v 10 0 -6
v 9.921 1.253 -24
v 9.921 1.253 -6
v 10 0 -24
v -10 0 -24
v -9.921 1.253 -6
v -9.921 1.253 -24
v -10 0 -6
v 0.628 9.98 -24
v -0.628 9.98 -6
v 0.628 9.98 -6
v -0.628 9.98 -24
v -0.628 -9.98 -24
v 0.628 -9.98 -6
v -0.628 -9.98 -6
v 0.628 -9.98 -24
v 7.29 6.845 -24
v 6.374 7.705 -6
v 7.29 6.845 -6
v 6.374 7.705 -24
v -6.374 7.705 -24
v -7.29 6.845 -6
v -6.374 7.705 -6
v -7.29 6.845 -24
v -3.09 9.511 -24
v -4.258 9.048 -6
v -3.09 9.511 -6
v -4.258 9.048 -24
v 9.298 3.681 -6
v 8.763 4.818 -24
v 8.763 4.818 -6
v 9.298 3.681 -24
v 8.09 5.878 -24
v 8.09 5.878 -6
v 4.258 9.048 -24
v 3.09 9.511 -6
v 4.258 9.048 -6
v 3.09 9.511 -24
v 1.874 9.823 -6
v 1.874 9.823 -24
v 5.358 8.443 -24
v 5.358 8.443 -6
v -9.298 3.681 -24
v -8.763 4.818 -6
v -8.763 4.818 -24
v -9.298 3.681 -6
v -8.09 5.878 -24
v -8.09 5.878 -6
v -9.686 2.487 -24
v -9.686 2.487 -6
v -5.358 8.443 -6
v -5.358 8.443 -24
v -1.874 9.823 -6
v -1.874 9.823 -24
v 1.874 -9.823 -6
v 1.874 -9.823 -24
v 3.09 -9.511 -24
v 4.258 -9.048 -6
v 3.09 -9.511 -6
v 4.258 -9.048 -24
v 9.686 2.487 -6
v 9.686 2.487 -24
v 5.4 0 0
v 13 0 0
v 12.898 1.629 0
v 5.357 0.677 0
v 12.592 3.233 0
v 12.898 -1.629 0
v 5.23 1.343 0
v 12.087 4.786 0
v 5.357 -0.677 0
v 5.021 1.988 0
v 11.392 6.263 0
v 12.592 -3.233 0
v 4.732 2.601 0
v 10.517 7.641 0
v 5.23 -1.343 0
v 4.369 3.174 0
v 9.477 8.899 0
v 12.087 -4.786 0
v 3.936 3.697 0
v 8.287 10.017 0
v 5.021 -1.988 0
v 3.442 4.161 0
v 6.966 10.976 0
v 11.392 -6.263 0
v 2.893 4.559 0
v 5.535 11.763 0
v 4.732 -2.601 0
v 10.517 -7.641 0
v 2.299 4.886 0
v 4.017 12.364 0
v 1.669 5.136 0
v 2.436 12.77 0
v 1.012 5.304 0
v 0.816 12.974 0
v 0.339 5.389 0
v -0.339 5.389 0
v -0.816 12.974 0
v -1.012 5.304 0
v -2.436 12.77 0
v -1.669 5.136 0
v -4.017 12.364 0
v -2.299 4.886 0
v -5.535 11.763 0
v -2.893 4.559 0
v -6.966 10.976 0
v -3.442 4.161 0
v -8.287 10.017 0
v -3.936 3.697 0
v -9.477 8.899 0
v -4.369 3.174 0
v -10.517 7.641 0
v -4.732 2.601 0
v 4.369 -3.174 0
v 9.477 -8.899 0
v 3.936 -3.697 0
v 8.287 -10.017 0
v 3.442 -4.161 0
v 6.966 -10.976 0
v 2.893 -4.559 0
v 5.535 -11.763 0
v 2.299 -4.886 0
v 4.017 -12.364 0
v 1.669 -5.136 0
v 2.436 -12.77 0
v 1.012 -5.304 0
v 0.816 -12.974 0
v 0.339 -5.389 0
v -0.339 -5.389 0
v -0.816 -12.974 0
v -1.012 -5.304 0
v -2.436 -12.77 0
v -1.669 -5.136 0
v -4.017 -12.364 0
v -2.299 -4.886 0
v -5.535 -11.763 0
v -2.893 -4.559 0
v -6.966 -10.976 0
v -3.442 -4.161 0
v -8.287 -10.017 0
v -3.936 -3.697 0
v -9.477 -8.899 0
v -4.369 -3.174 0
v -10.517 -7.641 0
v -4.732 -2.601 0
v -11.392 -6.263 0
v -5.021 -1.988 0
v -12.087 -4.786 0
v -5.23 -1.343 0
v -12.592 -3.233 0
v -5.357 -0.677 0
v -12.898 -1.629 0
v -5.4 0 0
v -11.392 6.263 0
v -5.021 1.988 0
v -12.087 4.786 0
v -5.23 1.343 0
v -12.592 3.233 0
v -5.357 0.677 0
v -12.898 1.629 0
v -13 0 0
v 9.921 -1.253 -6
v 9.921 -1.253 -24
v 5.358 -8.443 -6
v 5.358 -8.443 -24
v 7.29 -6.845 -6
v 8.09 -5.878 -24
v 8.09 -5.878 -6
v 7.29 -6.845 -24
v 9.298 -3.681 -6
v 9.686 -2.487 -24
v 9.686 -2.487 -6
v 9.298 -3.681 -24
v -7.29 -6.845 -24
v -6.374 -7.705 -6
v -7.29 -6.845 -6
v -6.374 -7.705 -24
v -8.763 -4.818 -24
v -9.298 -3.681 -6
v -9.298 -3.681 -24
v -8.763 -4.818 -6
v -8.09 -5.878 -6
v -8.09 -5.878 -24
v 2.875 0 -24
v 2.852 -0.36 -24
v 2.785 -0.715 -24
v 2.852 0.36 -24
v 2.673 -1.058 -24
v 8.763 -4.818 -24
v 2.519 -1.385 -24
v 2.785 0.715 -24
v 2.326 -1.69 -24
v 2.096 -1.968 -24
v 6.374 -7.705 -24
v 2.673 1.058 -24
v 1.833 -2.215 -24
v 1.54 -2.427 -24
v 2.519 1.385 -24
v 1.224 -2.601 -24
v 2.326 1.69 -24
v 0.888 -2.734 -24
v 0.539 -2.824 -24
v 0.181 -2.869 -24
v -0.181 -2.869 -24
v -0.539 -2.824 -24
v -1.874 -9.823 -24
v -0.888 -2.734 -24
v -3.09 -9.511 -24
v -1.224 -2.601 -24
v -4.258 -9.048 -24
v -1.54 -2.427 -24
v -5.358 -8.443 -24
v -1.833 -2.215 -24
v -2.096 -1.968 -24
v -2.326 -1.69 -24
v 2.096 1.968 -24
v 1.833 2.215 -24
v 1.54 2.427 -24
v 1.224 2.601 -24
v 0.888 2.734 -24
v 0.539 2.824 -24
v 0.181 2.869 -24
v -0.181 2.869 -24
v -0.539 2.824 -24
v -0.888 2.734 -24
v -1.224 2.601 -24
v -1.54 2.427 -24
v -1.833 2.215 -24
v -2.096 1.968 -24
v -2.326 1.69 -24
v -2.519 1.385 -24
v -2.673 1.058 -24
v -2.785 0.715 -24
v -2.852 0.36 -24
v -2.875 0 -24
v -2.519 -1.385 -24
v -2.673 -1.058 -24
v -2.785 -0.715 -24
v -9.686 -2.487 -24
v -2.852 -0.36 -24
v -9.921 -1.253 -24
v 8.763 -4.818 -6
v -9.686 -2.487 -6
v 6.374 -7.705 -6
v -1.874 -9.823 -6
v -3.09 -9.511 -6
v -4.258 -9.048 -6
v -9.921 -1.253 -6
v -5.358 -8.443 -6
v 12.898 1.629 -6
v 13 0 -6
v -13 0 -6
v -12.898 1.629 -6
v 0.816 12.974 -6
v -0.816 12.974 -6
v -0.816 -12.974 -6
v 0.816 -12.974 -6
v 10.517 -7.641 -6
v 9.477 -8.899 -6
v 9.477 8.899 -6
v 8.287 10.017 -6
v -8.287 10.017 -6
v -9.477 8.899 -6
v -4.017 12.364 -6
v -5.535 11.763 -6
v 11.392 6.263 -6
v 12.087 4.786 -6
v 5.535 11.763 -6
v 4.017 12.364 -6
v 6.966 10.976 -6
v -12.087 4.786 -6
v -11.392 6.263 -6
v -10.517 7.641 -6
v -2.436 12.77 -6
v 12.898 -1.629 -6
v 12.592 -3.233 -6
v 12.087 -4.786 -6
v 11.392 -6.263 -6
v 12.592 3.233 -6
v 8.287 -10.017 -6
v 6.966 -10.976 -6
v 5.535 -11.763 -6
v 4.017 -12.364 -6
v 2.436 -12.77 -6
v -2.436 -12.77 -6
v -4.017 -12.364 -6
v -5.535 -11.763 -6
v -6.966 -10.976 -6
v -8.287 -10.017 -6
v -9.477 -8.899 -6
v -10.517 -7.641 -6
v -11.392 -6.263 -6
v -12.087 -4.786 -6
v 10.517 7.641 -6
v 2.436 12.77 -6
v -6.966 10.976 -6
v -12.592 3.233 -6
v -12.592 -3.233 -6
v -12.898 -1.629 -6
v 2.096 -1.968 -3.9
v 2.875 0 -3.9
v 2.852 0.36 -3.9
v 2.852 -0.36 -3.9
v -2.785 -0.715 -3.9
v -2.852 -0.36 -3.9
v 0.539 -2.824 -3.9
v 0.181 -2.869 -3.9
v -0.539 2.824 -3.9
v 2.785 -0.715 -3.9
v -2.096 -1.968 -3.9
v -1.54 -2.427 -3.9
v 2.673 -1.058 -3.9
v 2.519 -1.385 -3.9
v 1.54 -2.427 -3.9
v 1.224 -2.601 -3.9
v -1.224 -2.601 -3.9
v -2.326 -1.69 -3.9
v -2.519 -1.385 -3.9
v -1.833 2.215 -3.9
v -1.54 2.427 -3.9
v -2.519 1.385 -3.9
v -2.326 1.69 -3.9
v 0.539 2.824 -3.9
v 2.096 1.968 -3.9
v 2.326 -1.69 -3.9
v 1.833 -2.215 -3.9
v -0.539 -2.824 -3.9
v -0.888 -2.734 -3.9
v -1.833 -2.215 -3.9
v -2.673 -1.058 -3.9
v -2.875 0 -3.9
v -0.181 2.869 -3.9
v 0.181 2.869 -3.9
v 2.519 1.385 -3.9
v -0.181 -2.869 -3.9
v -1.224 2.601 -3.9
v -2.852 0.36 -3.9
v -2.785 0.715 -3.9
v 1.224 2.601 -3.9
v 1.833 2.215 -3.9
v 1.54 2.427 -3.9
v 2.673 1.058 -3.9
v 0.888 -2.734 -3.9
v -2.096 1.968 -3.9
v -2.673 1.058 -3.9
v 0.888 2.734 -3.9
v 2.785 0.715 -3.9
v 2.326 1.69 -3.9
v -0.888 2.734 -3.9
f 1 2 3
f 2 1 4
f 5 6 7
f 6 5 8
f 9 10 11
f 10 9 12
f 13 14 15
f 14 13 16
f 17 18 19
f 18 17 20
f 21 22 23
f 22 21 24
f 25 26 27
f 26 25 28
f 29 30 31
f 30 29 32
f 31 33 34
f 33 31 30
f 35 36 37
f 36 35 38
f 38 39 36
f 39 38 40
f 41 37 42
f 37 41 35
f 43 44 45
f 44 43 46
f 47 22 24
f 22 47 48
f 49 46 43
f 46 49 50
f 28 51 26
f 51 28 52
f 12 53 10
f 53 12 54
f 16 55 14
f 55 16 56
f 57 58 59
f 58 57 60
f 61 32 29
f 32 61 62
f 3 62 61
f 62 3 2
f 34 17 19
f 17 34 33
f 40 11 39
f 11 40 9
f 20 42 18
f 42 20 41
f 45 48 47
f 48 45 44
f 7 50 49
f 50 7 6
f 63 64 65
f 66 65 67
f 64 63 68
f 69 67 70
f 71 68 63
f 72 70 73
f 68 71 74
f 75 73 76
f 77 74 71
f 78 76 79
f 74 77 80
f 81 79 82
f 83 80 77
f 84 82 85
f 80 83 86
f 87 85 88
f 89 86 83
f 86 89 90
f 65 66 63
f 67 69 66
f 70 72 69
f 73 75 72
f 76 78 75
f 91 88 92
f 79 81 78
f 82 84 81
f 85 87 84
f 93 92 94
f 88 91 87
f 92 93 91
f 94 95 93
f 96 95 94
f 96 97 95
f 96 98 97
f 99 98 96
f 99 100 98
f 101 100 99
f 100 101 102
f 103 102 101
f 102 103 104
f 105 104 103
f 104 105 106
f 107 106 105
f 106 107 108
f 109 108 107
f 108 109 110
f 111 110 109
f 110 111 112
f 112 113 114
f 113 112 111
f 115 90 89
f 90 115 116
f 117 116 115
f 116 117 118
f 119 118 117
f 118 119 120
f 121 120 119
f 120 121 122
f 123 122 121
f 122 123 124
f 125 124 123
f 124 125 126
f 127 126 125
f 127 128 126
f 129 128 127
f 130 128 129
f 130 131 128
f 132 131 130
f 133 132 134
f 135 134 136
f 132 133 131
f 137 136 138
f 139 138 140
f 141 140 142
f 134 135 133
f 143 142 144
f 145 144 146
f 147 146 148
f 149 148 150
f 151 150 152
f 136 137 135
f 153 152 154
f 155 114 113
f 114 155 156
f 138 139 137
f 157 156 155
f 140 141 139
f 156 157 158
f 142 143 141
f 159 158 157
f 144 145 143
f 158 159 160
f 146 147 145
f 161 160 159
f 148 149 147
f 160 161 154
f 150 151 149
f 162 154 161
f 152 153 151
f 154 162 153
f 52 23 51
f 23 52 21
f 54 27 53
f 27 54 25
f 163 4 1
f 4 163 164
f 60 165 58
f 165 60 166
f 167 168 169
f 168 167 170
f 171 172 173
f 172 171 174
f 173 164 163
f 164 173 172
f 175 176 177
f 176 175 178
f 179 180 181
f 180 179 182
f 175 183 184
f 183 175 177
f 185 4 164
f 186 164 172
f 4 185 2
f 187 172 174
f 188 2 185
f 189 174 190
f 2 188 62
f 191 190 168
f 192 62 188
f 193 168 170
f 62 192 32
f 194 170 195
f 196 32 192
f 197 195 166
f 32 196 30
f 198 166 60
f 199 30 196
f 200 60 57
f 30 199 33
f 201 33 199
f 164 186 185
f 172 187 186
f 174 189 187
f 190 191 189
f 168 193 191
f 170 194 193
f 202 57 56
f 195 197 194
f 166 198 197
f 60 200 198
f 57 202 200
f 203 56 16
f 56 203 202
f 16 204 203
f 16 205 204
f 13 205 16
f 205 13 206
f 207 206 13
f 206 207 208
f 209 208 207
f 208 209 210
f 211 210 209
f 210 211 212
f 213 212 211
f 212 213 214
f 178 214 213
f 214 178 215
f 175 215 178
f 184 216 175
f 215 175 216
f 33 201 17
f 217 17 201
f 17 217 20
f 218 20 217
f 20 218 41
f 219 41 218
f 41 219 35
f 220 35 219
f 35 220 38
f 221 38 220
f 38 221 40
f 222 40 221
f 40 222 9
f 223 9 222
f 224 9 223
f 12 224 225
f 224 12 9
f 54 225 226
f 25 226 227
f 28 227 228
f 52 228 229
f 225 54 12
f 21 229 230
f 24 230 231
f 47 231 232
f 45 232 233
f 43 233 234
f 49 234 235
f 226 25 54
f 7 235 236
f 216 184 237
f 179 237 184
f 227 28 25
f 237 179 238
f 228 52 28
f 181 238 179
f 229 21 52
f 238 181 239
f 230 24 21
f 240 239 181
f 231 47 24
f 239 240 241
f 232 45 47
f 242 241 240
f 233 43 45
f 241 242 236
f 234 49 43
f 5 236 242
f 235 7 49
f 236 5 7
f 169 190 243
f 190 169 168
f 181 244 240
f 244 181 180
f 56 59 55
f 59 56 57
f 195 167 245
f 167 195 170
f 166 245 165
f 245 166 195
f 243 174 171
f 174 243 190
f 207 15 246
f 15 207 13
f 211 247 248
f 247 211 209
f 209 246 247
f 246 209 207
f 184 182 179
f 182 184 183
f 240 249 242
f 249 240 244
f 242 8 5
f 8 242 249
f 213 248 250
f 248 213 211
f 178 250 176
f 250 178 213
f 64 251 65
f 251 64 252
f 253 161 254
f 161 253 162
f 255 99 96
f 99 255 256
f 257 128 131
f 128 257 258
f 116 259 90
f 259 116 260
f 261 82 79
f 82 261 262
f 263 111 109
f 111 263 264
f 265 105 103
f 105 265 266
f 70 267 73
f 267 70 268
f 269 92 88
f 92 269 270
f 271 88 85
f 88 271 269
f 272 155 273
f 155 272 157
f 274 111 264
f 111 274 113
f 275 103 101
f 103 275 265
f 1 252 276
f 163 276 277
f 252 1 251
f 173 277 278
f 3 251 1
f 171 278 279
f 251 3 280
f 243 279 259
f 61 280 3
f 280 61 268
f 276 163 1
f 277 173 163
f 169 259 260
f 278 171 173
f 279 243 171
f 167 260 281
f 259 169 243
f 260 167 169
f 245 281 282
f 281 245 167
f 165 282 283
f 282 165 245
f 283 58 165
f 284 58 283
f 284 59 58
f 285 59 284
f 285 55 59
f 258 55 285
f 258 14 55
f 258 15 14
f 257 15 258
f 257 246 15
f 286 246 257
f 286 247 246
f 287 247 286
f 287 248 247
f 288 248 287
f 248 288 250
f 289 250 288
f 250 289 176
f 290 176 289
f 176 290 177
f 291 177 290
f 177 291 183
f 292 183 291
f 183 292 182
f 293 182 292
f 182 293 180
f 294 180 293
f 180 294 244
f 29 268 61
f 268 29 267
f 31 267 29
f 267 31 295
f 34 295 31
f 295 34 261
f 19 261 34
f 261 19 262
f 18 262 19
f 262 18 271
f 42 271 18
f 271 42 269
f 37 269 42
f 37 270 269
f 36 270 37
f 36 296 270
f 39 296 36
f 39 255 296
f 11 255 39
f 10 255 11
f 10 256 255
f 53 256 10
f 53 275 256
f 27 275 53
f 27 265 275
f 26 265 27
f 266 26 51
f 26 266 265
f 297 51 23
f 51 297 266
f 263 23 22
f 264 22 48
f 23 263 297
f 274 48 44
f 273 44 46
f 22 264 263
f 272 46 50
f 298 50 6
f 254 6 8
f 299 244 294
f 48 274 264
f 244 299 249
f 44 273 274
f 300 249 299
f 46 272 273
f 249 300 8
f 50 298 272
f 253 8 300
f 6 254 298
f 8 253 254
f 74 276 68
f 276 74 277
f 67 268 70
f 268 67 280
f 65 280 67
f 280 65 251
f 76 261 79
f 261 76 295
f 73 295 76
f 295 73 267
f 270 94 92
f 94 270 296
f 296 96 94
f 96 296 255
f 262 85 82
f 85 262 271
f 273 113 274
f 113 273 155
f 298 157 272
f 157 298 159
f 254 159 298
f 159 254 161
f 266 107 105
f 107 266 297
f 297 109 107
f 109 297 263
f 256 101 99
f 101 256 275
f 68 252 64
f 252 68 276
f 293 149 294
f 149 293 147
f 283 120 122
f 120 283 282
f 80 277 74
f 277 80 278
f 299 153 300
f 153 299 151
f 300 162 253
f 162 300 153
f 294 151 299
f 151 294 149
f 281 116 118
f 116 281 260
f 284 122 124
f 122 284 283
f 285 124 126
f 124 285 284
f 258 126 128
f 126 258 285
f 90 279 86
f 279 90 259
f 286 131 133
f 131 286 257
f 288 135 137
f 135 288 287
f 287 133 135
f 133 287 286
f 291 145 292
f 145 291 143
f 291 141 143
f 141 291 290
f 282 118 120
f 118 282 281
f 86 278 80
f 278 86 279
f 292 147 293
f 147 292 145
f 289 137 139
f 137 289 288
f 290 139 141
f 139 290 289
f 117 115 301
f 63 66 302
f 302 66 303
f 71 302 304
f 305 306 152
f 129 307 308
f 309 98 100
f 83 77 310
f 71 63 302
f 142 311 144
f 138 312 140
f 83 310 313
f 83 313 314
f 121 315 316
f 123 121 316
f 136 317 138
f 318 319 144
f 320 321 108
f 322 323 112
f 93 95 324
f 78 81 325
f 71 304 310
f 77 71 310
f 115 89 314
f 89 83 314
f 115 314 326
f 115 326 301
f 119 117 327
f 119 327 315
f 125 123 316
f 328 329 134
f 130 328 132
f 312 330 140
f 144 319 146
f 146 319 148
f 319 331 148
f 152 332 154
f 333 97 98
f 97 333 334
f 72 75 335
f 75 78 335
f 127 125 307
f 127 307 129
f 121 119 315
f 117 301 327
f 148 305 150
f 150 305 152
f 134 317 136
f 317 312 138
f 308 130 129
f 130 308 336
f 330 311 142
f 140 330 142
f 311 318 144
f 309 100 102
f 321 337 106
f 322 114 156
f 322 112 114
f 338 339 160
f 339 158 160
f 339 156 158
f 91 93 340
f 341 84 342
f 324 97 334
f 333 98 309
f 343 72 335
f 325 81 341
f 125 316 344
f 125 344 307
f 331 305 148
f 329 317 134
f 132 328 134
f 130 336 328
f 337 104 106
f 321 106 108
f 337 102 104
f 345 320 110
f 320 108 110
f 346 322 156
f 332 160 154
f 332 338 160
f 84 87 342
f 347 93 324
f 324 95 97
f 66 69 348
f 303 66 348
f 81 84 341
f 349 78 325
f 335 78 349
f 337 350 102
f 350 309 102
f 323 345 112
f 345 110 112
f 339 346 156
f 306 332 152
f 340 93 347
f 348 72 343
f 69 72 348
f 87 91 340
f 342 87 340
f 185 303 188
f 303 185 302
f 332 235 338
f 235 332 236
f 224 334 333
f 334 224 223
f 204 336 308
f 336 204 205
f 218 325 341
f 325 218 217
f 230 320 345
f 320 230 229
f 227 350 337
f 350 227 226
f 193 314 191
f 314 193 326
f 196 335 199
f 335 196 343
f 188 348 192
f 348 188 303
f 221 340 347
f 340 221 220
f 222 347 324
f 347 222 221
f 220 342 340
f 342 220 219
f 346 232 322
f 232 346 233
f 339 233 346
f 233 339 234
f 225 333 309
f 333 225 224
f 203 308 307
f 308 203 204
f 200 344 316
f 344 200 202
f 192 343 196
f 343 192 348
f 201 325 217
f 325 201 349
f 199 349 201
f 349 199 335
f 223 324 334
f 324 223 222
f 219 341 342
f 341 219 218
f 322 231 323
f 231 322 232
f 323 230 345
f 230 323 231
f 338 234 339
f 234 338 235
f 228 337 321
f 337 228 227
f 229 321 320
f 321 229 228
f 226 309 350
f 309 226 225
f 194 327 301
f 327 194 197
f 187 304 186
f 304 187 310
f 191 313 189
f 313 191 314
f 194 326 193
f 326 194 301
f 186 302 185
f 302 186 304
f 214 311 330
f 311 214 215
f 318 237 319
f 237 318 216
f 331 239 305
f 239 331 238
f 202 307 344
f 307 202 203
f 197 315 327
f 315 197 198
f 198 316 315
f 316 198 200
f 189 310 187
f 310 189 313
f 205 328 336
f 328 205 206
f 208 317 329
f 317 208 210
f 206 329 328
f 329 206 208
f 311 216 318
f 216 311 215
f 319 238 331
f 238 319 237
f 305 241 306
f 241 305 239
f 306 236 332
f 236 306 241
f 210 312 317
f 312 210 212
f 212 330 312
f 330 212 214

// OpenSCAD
$fn = 50;


difference() {
	union() {
		translate(v = [0, 0, -24.0000000000]) {
			cylinder(h = 24, r = 10.0000000000);
		}
		translate(v = [0, 0, -6.0000000000]) {
			cylinder(h = 6, r = 13.0000000000);
		}
	}
	union() {
		translate(v = [0, 0, 0]) {
			rotate(a = [0, 0, 0]) {
				difference() {
					union() {
						#translate(v = [0, 0, -24.0000000000]) {
							cylinder(h = 24, r = 2.6000000000);
						}
						#translate(v = [0, 0, -3.9000000000]) {
							cylinder(h = 3.9000000000, r = 10.0000000000, r1 = 2.8750000000, r2 = 5.4000000000);
						}
						#translate(v = [0, 0, -24.0000000000]) {
							cylinder(h = 24, r = 2.8750000000);
						}
						#translate(v = [0, 0, -24.0000000000]) {
							cylinder(h = 24, r = 2.6000000000);
						}
					}
					union();
				}
			}
		}
	}
}
